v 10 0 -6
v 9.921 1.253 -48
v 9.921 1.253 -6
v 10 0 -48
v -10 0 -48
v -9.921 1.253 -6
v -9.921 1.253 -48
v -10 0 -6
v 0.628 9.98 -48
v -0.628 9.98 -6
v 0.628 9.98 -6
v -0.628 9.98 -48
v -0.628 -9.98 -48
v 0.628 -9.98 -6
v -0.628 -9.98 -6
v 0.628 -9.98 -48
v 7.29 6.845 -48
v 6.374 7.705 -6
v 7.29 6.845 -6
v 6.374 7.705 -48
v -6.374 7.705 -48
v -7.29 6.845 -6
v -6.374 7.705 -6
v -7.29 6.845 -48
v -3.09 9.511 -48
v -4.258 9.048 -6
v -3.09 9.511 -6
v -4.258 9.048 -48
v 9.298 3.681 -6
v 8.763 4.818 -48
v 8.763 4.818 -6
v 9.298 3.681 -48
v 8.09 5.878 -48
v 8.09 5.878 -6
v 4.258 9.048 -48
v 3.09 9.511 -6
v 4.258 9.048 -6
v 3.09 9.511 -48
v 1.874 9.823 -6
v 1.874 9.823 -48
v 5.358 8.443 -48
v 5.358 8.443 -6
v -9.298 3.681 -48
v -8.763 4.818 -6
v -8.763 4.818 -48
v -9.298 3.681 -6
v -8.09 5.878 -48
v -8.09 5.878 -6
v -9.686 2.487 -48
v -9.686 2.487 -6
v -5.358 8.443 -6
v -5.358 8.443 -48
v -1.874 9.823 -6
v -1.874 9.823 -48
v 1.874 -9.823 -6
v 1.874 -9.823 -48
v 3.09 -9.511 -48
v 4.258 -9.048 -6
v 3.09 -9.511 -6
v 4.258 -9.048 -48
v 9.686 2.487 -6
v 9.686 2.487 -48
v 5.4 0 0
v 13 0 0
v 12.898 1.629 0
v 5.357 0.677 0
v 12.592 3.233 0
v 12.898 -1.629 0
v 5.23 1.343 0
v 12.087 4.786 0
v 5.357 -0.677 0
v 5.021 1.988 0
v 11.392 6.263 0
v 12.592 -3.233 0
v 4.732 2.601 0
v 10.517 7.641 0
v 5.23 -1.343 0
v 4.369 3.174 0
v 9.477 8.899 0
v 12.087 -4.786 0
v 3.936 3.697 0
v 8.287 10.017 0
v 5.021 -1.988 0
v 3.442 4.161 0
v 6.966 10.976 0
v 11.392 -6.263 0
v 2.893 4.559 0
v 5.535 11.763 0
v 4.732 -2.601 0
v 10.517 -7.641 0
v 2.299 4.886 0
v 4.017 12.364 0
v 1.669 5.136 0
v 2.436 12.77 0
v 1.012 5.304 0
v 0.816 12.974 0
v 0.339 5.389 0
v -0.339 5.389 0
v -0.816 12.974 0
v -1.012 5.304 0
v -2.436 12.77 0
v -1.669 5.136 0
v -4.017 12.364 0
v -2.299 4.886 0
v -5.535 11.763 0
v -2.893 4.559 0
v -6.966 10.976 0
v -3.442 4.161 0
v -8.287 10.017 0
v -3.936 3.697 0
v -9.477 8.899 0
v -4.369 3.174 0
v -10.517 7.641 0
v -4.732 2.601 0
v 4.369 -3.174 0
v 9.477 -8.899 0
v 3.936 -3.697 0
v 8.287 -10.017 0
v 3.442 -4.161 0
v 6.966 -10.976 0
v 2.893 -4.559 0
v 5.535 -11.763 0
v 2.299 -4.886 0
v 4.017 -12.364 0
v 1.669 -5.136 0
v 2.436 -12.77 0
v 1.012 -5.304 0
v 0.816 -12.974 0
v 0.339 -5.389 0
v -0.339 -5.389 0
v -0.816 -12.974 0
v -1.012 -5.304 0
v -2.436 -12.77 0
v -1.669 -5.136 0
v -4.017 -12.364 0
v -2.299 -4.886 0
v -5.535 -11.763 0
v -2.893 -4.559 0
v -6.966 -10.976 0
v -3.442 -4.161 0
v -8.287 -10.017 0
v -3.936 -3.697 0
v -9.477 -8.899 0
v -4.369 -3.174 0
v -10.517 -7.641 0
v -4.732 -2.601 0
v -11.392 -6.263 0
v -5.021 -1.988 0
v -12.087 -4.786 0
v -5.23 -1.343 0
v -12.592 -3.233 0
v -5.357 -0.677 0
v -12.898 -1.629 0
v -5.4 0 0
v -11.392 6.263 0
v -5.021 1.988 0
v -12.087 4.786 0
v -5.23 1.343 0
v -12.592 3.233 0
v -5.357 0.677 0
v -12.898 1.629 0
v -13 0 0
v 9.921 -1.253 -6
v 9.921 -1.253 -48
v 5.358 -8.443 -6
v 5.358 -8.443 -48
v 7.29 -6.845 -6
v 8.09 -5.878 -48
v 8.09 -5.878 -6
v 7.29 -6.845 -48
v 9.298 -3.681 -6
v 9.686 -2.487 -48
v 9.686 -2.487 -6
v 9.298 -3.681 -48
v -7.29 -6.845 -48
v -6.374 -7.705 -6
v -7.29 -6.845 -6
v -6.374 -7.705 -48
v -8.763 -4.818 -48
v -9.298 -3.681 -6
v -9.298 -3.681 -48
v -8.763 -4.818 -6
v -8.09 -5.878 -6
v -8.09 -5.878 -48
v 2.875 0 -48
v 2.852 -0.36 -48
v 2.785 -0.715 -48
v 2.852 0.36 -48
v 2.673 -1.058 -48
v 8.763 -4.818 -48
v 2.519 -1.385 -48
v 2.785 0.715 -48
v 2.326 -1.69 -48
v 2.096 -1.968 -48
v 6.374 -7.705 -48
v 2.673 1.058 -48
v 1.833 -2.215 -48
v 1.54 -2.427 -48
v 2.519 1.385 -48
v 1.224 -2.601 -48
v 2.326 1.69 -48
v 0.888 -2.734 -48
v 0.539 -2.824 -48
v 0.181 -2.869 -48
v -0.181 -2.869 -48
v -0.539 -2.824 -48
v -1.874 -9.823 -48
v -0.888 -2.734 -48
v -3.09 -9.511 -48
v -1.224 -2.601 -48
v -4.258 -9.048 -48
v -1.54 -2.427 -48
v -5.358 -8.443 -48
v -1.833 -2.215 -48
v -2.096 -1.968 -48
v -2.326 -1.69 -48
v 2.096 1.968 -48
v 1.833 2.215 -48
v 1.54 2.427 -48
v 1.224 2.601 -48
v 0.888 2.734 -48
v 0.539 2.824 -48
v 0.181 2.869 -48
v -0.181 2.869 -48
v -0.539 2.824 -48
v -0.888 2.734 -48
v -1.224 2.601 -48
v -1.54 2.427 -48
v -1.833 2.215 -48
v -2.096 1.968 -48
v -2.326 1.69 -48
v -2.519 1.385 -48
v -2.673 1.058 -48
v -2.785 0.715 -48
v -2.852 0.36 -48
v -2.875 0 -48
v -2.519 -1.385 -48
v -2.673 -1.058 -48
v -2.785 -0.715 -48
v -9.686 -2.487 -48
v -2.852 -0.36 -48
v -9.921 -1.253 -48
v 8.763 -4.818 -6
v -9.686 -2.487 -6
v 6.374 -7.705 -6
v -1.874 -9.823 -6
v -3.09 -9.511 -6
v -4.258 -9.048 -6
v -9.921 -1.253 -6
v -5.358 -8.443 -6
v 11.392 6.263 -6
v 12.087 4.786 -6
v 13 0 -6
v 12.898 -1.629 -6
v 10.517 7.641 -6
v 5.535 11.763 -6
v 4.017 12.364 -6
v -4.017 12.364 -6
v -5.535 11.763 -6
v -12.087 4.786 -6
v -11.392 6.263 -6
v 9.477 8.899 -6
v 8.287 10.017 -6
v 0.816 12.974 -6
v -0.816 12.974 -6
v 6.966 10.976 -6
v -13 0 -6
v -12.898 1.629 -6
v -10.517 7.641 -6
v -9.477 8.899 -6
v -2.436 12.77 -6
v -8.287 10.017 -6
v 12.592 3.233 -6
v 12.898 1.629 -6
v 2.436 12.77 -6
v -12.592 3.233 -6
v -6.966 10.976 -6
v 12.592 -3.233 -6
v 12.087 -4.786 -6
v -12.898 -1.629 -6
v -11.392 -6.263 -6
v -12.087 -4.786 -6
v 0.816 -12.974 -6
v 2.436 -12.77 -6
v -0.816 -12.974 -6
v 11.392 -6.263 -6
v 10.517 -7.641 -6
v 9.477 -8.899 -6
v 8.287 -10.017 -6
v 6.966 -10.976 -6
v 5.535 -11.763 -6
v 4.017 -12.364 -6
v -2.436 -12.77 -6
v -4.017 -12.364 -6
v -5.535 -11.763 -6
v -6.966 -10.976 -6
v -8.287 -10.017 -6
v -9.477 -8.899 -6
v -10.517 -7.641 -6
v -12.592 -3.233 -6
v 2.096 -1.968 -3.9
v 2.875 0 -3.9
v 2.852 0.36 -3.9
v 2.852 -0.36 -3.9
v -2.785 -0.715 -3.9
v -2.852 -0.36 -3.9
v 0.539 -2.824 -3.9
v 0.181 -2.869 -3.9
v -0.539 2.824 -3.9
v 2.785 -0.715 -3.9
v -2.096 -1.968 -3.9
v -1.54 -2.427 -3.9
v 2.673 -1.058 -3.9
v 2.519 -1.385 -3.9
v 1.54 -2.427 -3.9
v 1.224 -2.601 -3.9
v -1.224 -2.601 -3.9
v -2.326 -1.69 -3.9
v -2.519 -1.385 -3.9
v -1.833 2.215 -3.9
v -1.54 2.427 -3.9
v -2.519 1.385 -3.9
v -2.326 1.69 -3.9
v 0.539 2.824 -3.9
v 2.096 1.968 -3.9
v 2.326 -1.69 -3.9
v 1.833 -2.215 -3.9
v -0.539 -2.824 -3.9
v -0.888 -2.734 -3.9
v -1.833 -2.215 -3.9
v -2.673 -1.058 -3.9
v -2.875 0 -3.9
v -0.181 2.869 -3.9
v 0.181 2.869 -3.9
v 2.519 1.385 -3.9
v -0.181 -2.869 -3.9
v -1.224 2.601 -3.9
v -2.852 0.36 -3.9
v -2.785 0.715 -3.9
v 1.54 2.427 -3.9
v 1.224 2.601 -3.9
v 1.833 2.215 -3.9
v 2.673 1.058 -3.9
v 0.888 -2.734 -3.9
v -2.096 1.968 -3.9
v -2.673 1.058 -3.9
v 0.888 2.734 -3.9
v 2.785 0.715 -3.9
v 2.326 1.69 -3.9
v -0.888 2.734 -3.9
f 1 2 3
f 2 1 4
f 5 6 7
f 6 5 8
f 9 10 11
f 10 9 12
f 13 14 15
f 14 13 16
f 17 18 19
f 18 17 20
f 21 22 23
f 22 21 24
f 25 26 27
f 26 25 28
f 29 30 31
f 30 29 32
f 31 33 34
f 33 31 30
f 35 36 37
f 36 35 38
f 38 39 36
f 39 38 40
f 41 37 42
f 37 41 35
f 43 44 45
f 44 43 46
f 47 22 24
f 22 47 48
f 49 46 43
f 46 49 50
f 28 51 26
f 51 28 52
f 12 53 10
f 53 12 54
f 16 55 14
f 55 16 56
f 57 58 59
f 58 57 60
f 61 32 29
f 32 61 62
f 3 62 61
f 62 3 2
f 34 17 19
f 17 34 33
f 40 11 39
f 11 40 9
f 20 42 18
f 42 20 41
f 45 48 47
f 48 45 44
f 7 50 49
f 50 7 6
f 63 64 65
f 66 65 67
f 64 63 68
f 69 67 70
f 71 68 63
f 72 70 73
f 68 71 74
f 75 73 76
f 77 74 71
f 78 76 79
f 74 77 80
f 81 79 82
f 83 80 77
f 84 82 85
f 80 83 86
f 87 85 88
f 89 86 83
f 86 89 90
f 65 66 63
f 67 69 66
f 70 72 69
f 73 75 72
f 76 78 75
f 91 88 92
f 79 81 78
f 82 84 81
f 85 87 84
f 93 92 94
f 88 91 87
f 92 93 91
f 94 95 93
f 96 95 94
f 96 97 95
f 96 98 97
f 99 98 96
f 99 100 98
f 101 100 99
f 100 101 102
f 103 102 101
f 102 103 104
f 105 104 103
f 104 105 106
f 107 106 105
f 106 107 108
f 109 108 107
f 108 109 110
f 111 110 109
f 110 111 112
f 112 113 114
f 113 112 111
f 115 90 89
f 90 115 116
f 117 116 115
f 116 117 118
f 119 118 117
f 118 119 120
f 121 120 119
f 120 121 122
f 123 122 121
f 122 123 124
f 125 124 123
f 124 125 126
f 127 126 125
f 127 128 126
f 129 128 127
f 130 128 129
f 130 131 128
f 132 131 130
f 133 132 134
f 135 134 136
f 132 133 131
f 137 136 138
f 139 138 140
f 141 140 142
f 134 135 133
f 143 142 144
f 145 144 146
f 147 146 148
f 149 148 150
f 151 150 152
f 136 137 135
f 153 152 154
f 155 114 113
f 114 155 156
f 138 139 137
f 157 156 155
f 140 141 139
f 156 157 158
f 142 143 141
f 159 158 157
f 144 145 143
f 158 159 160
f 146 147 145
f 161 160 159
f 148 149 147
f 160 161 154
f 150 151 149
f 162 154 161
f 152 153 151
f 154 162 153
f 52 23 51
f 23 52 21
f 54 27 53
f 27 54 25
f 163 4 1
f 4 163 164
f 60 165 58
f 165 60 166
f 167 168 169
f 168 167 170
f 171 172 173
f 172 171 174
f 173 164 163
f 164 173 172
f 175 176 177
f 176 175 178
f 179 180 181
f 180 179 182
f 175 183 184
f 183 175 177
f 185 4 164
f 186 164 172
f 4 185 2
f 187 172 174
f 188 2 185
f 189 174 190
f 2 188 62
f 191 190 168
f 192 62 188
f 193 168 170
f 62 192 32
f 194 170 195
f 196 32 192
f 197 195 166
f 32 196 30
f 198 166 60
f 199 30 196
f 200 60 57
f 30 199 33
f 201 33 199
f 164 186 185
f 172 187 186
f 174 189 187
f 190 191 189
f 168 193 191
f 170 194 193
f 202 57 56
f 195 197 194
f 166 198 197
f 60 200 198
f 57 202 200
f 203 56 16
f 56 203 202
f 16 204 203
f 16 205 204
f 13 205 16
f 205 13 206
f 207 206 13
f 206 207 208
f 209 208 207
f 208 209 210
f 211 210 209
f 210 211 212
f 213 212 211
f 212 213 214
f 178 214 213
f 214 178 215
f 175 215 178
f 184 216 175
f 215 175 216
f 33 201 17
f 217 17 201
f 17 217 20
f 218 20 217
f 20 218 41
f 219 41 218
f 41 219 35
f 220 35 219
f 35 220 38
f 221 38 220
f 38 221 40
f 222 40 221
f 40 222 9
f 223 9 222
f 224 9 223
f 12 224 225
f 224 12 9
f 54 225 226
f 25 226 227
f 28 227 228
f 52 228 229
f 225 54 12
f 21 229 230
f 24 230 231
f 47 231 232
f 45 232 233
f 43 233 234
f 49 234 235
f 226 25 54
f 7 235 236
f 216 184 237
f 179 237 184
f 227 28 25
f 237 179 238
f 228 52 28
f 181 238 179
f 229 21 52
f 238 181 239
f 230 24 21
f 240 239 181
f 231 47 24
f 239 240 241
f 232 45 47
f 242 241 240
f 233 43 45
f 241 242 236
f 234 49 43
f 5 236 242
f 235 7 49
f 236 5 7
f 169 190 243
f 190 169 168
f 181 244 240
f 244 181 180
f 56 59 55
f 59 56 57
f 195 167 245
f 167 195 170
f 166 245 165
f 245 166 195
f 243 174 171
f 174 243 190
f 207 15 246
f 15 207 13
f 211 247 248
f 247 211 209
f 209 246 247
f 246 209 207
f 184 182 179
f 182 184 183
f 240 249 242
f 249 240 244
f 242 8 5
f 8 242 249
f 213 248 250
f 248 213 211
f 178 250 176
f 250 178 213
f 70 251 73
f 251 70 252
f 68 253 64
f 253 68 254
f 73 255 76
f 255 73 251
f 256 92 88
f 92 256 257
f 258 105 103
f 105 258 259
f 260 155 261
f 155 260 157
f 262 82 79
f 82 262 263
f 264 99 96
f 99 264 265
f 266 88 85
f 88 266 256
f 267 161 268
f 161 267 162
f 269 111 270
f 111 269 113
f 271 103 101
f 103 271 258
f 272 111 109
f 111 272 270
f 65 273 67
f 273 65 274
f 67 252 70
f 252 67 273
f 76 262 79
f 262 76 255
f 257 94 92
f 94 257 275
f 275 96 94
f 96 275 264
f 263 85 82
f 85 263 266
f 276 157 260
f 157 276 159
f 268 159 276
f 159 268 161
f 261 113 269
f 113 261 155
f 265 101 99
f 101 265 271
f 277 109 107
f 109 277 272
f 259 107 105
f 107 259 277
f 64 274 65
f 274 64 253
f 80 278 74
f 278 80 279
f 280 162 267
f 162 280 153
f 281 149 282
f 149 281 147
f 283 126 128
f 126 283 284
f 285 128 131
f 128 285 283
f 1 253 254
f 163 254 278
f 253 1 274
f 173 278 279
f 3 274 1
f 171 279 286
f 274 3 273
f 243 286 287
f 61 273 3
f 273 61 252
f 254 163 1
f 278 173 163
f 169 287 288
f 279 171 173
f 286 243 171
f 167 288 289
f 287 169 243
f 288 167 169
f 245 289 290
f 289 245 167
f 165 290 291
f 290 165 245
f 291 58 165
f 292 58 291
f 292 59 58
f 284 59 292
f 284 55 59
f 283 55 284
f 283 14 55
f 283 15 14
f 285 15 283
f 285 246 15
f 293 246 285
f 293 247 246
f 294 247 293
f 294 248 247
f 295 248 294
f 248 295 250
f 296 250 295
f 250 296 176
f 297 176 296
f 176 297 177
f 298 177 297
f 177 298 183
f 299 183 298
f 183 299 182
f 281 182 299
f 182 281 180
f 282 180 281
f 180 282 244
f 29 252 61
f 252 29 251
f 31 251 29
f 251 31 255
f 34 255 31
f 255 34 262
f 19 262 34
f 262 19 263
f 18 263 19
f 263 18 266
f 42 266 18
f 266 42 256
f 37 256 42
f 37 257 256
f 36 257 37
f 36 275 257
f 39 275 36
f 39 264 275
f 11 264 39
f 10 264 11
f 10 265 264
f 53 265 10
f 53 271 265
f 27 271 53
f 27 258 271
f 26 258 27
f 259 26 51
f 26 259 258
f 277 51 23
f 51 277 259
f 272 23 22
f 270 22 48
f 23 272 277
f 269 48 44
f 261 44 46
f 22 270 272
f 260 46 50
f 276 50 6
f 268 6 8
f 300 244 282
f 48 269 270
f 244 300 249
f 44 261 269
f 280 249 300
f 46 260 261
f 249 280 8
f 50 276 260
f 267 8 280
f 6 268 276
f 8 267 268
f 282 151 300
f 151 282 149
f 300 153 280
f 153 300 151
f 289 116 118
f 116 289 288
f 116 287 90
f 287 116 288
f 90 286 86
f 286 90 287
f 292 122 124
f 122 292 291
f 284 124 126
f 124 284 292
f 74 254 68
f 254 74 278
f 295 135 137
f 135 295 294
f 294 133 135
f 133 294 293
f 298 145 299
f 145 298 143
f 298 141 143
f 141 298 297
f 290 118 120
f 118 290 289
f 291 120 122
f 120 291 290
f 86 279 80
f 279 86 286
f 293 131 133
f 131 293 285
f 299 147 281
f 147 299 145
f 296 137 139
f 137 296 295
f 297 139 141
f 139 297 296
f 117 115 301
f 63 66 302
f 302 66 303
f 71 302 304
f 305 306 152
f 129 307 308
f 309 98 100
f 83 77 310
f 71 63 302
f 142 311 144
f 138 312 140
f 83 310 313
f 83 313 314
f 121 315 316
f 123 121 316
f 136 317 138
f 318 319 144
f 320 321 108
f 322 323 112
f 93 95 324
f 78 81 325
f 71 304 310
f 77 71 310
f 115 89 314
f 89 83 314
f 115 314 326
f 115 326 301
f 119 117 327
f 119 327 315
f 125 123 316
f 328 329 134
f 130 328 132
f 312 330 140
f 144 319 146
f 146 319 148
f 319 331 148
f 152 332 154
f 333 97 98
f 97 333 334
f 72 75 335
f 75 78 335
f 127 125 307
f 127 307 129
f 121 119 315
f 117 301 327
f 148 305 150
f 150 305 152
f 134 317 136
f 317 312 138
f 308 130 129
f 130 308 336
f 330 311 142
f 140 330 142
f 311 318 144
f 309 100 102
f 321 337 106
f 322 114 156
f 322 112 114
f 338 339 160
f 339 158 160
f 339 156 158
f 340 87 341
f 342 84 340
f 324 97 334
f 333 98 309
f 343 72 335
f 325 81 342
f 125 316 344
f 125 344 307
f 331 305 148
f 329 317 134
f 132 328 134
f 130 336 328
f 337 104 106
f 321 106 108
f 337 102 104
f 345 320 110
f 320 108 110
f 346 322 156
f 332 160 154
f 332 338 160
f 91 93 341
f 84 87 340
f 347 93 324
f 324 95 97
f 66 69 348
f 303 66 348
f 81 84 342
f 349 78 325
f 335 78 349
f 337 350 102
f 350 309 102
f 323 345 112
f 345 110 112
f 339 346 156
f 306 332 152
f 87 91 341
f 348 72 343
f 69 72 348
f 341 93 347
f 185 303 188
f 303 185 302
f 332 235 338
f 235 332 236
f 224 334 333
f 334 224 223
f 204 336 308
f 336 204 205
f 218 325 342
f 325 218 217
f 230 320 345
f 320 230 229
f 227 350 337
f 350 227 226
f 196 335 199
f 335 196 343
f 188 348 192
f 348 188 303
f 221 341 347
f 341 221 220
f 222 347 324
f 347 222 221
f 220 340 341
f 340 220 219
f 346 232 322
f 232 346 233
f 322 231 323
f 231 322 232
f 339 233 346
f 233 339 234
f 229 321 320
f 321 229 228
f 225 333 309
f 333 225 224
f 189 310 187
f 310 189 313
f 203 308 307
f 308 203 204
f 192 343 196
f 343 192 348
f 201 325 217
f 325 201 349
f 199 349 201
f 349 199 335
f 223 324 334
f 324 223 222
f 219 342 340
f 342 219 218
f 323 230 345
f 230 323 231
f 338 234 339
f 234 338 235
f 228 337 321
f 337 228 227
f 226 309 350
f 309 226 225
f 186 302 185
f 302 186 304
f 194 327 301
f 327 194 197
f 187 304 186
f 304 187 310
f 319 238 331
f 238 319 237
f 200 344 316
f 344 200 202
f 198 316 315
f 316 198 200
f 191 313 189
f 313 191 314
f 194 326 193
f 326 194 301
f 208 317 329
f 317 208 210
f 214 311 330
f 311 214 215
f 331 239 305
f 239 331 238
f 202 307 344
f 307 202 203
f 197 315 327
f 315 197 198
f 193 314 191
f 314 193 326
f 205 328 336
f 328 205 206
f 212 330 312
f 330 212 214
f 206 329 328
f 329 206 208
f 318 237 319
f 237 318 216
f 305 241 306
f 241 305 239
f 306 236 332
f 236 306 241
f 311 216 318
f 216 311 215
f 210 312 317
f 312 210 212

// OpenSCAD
$fn = 50;


difference() {
	union() {
		translate(v = [0, 0, -48.0000000000]) {
			cylinder(h = 48, r = 10.0000000000);
		}
		translate(v = [0, 0, -6.0000000000]) {
			cylinder(h = 6, r = 13.0000000000);
		}
	}
	union() {
		translate(v = [0, 0, 0]) {
			rotate(a = [0, 0, 0]) {
				difference() {
					union() {
						#translate(v = [0, 0, -48.0000000000]) {
							cylinder(h = 48, r = 2.6000000000);
						}
						#translate(v = [0, 0, -3.9000000000]) {
							cylinder(h = 3.9000000000, r = 10.0000000000, r1 = 2.8750000000, r2 = 5.4000000000);
						}
						#translate(v = [0, 0, -48.0000000000]) {
							cylinder(h = 48, r = 2.8750000000);
						}
						#translate(v = [0, 0, -48.0000000000]) {
							cylinder(h = 48, r = 2.6000000000);
						}
					}
					union();
				}
			}
		}
	}
}
